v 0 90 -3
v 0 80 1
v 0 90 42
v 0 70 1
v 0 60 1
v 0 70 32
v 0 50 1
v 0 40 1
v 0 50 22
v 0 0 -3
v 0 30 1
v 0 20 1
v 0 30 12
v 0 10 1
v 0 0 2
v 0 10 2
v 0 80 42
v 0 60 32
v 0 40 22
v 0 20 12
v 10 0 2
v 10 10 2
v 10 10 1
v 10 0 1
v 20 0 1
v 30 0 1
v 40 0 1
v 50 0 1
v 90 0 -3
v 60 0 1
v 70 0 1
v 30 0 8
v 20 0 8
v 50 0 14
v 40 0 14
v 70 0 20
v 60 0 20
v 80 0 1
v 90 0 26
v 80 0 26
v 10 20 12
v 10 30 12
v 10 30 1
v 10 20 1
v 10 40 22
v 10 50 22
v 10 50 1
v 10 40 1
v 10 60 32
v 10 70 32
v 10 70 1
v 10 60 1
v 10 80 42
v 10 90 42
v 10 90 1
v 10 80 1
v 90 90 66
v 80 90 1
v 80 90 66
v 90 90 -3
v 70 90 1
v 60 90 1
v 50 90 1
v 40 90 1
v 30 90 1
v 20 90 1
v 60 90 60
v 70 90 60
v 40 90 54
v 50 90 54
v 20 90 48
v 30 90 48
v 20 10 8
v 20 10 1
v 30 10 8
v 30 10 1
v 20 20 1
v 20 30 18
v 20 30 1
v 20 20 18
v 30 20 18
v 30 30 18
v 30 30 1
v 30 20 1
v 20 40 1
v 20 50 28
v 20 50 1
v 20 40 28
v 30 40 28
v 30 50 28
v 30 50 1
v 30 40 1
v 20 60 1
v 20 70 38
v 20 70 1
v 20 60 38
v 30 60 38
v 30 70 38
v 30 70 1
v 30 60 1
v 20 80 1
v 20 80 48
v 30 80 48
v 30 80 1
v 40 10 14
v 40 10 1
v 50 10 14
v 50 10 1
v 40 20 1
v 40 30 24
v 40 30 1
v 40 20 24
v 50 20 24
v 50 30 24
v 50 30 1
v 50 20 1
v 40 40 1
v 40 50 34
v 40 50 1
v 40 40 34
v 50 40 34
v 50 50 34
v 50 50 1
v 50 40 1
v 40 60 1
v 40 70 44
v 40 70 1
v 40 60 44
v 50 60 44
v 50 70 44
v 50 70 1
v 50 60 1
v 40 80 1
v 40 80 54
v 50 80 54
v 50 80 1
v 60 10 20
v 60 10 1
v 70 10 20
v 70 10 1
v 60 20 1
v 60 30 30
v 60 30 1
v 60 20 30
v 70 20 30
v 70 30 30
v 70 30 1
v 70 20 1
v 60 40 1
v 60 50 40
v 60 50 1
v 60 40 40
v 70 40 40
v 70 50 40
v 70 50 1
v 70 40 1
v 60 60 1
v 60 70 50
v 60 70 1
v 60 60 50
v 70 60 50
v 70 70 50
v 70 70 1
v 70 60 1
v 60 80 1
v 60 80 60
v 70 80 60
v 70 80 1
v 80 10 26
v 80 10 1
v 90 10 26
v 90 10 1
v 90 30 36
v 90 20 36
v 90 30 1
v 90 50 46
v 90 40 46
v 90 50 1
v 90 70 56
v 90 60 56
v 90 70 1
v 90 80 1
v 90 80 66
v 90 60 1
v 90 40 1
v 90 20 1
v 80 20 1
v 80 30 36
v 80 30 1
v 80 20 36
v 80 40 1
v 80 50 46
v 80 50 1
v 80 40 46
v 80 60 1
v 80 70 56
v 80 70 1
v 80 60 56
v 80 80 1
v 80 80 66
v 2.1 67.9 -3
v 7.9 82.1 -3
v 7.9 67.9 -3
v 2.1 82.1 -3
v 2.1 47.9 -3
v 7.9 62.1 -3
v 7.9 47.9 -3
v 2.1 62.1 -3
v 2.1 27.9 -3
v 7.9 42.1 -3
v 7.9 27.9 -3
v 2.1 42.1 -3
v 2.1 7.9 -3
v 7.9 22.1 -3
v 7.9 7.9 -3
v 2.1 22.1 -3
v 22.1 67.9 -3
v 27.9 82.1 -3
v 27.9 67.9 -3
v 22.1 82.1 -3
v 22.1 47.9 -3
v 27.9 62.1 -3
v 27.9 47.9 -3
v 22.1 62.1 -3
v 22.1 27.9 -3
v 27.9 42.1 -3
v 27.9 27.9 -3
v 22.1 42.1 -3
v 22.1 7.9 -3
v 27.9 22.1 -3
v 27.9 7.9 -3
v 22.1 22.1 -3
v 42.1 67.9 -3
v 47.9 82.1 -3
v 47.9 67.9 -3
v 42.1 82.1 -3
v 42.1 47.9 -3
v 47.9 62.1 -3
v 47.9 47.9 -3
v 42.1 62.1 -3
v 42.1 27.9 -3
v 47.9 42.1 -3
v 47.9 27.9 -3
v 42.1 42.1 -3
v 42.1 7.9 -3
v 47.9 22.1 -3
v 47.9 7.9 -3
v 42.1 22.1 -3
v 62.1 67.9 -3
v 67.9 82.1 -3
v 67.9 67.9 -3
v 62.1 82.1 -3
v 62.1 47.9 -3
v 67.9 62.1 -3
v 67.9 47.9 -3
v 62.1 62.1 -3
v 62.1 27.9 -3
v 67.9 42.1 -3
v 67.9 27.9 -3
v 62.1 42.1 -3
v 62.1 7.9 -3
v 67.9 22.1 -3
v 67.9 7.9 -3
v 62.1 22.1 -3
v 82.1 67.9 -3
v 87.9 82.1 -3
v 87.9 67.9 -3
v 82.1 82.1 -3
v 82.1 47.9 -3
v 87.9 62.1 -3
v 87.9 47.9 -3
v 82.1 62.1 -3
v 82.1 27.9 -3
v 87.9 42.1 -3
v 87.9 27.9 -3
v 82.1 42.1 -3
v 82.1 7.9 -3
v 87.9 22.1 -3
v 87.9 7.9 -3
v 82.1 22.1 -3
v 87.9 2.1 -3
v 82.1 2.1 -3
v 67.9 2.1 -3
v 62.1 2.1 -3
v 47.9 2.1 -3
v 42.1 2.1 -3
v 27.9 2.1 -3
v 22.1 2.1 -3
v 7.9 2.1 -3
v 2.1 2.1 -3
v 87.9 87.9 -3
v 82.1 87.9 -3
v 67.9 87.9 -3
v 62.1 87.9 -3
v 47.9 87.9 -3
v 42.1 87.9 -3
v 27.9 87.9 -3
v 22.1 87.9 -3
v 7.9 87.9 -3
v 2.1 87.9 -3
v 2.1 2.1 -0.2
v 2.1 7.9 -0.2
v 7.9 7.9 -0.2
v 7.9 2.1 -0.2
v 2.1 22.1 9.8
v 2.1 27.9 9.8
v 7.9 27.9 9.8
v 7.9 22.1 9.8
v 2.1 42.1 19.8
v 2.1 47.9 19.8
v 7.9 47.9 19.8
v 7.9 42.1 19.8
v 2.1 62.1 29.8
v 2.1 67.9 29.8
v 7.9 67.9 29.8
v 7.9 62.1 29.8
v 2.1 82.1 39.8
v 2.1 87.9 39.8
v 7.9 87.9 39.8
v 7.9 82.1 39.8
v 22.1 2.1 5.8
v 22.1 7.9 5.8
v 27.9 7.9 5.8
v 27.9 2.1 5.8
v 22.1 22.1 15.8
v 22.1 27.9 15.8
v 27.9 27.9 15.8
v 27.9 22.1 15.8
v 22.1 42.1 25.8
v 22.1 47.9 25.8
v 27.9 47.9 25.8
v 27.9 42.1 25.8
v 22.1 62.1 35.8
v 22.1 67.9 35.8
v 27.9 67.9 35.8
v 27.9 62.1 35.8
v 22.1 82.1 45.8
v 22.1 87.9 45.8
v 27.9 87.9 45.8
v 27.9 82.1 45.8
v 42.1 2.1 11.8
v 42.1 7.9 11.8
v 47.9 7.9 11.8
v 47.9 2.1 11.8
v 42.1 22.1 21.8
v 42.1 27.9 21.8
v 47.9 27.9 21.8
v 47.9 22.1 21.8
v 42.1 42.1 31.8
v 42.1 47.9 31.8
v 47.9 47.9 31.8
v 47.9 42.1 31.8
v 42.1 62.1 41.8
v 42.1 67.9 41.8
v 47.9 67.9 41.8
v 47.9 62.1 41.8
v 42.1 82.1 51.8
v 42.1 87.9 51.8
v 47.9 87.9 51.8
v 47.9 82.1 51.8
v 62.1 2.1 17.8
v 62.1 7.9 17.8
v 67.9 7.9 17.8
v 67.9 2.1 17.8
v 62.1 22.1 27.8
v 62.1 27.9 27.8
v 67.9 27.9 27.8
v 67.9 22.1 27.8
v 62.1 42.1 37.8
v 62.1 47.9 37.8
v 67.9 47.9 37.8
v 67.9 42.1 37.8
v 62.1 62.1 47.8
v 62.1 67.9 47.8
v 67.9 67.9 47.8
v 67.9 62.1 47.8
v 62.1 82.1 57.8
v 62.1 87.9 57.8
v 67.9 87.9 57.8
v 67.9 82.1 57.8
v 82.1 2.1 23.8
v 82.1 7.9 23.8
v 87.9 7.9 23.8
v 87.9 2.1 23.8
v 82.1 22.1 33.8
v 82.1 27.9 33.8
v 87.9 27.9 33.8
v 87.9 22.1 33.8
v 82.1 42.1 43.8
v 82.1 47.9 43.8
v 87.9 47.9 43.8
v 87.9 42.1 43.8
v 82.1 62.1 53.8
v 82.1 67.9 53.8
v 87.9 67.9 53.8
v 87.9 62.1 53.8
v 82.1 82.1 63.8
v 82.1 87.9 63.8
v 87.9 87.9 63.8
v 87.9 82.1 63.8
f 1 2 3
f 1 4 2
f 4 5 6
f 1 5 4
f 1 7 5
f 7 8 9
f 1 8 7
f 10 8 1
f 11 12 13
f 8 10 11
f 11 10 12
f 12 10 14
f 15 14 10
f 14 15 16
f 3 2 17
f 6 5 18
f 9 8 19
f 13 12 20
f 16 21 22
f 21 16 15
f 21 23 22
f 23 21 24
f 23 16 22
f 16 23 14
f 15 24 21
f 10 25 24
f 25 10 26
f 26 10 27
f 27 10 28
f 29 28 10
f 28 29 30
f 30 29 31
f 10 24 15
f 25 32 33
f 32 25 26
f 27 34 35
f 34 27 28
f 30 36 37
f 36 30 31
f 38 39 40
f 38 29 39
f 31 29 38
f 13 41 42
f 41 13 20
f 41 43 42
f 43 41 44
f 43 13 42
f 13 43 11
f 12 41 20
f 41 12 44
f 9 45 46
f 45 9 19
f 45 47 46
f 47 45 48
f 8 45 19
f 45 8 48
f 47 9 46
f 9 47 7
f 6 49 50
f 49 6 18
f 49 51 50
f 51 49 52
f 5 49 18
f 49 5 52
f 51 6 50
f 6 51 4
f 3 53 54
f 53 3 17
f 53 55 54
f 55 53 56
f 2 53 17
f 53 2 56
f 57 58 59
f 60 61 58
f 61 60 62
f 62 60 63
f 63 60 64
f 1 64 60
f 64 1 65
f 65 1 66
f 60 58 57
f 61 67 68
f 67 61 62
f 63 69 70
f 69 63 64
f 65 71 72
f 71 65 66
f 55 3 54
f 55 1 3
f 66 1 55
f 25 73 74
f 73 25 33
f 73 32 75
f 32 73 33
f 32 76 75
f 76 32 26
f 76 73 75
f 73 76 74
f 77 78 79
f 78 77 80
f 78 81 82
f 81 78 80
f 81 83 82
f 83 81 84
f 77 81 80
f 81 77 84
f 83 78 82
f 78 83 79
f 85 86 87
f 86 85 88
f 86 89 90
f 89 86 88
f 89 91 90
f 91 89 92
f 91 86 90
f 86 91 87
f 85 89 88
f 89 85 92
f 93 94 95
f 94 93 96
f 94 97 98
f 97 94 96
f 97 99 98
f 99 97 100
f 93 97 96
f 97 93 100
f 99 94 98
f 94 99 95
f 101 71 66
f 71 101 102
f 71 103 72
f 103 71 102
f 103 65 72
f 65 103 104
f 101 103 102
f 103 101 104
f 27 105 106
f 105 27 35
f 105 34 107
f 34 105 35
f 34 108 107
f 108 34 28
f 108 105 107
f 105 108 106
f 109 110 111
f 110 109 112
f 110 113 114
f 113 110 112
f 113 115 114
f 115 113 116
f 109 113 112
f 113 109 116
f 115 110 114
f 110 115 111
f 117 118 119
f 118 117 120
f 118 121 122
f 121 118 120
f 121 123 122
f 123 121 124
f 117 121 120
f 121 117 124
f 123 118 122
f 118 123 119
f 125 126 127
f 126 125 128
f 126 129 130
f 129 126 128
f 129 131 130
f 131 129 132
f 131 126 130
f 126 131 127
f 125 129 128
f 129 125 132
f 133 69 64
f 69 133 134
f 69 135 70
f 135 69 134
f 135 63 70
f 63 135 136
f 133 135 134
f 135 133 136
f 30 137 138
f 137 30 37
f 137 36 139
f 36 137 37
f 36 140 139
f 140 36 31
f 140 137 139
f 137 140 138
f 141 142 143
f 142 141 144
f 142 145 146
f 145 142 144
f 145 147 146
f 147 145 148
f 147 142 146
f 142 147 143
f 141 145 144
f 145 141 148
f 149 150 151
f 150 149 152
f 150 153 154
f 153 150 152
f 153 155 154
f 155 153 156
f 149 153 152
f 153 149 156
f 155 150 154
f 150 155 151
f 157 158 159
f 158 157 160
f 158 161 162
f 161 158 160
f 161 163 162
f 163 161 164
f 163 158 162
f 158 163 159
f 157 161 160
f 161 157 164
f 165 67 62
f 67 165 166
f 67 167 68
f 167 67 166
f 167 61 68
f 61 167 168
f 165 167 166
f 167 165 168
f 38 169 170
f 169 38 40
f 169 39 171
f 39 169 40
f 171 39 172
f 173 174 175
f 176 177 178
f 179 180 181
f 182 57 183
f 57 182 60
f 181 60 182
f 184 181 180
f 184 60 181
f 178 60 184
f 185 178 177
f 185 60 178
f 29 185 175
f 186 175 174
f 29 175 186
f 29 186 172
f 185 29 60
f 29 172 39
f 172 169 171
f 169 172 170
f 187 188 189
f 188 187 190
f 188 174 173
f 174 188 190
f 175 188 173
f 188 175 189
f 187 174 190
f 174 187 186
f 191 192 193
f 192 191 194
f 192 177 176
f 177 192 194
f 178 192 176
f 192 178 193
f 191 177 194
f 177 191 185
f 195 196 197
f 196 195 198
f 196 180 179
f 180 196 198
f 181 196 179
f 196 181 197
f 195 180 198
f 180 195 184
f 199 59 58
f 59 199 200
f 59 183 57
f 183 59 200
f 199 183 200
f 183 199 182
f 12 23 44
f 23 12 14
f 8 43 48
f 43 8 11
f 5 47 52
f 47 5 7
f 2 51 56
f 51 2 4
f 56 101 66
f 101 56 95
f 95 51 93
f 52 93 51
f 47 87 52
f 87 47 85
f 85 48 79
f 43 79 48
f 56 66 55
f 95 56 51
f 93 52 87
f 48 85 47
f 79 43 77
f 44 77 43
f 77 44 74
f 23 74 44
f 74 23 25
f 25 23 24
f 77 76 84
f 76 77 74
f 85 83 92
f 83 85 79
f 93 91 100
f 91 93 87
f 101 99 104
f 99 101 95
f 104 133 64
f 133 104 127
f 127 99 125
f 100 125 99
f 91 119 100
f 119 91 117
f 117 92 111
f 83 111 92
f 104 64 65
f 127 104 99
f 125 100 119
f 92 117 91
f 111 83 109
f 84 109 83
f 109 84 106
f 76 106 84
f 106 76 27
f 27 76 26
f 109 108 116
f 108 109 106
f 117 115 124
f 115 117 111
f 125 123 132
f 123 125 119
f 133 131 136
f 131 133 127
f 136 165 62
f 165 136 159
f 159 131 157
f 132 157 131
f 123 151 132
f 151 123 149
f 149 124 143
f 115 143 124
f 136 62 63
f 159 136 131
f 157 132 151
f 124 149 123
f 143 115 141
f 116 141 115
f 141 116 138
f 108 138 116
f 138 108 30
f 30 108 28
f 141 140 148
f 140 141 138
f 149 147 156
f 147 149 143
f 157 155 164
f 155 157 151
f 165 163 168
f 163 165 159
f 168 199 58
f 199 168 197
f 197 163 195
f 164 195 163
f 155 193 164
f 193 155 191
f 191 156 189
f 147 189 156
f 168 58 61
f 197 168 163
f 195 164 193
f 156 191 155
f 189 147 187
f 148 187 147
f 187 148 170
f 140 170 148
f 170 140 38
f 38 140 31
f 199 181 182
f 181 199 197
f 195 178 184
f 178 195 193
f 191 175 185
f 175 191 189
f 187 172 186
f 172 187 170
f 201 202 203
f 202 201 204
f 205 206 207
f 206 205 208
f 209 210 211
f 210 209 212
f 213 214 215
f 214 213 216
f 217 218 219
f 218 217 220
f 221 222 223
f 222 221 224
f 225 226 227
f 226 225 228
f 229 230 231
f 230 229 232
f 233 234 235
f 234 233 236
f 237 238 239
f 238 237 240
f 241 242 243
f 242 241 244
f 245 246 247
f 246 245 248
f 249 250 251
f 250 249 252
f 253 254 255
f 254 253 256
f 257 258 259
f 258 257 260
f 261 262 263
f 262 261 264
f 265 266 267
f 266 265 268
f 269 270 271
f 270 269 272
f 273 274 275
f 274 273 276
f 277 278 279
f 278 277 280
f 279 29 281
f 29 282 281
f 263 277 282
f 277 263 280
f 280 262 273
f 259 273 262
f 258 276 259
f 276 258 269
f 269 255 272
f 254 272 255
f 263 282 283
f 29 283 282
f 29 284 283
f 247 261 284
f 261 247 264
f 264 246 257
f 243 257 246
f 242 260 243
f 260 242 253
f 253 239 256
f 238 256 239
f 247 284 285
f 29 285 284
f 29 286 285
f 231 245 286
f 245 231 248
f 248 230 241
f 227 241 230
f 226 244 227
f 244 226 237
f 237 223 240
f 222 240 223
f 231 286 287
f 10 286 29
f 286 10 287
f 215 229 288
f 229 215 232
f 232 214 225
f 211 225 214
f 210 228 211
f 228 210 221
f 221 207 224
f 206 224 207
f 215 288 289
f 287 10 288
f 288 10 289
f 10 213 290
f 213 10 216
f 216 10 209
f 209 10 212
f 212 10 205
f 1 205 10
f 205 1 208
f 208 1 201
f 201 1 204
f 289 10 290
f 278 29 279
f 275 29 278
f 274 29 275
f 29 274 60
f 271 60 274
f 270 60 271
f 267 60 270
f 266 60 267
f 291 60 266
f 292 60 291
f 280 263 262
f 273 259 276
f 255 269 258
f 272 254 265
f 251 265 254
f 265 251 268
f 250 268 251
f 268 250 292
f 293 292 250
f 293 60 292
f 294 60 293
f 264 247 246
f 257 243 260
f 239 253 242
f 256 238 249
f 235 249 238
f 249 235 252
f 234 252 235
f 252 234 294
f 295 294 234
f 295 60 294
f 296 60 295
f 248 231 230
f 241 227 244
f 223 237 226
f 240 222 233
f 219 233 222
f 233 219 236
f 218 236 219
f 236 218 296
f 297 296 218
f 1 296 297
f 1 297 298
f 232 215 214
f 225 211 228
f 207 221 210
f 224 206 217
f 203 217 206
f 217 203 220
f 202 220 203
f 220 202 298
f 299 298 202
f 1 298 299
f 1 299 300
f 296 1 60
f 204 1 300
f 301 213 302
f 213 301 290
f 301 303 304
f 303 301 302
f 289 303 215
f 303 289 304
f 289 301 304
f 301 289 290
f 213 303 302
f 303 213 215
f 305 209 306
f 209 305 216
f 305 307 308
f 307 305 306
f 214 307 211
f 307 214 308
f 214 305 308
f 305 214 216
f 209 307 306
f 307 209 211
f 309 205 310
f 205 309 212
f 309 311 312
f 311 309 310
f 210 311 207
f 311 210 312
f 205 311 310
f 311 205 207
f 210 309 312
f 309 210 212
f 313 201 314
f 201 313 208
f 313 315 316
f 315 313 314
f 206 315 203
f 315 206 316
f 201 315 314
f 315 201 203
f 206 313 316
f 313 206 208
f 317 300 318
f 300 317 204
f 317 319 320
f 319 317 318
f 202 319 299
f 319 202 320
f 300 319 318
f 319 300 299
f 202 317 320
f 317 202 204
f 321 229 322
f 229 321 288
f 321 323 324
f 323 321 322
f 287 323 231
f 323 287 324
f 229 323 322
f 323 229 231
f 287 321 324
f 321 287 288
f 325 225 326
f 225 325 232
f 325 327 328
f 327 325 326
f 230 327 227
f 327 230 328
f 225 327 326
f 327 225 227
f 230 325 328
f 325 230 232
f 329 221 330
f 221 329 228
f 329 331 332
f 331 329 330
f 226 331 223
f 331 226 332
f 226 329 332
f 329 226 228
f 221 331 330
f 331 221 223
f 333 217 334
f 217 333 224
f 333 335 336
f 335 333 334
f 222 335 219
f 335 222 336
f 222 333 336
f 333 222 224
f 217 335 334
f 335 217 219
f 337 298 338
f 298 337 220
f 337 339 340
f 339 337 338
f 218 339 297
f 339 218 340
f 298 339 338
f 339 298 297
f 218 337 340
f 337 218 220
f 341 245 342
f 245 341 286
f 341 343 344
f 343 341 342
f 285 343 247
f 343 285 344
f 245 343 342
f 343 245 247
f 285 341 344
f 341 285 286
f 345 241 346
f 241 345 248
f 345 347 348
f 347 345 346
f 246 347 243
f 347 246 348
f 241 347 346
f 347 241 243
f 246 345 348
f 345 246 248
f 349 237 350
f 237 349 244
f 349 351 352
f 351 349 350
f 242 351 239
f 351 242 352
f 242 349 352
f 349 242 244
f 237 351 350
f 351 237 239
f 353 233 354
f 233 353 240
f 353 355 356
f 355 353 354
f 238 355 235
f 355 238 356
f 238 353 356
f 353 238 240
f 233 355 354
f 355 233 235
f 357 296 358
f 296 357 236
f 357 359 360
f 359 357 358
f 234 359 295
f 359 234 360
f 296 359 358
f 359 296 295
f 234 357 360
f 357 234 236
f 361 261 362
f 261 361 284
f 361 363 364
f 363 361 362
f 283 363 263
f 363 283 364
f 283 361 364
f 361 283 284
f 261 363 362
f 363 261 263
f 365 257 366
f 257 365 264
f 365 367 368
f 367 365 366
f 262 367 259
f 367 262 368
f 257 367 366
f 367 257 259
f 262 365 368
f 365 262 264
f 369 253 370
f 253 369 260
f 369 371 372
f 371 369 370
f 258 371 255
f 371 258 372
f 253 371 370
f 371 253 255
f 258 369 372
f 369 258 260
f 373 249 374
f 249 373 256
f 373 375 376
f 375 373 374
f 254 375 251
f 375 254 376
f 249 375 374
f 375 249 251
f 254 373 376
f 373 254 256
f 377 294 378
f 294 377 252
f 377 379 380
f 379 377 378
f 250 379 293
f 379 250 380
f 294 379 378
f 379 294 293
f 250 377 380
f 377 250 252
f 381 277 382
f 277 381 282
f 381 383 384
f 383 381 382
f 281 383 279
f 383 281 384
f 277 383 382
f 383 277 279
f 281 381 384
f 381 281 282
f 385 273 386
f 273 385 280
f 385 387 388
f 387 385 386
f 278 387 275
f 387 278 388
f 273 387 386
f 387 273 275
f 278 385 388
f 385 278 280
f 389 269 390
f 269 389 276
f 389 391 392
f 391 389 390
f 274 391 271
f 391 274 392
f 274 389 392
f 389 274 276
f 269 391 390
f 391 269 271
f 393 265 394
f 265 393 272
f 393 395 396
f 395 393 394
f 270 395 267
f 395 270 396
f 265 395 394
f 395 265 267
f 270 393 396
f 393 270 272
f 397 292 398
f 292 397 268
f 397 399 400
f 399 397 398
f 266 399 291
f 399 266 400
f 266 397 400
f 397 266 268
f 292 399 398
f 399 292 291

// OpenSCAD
difference() {
    union() {
        translate([0, 0, -3])
        cube(size=[90, 90, 4]);
        for (x = [0:2:9]) {
            for (y = [0:2:9]) {
                translate([10 * x, 10 * y, 0])
                cube(size=[10, 10, 3 * x + 5 * y + 2]);
            }
        }
    }
    
    union() {
        for (x = [0:2:9]) {
            for (y = [0:2:9]) {
                translate([10 * x + 2.1, 10 * y + 2.1, -5])
                cube(size=[5.8, 5.8, 3 * x + 5 * y + 2 + 2.8]);
            }
        }
    }
}
